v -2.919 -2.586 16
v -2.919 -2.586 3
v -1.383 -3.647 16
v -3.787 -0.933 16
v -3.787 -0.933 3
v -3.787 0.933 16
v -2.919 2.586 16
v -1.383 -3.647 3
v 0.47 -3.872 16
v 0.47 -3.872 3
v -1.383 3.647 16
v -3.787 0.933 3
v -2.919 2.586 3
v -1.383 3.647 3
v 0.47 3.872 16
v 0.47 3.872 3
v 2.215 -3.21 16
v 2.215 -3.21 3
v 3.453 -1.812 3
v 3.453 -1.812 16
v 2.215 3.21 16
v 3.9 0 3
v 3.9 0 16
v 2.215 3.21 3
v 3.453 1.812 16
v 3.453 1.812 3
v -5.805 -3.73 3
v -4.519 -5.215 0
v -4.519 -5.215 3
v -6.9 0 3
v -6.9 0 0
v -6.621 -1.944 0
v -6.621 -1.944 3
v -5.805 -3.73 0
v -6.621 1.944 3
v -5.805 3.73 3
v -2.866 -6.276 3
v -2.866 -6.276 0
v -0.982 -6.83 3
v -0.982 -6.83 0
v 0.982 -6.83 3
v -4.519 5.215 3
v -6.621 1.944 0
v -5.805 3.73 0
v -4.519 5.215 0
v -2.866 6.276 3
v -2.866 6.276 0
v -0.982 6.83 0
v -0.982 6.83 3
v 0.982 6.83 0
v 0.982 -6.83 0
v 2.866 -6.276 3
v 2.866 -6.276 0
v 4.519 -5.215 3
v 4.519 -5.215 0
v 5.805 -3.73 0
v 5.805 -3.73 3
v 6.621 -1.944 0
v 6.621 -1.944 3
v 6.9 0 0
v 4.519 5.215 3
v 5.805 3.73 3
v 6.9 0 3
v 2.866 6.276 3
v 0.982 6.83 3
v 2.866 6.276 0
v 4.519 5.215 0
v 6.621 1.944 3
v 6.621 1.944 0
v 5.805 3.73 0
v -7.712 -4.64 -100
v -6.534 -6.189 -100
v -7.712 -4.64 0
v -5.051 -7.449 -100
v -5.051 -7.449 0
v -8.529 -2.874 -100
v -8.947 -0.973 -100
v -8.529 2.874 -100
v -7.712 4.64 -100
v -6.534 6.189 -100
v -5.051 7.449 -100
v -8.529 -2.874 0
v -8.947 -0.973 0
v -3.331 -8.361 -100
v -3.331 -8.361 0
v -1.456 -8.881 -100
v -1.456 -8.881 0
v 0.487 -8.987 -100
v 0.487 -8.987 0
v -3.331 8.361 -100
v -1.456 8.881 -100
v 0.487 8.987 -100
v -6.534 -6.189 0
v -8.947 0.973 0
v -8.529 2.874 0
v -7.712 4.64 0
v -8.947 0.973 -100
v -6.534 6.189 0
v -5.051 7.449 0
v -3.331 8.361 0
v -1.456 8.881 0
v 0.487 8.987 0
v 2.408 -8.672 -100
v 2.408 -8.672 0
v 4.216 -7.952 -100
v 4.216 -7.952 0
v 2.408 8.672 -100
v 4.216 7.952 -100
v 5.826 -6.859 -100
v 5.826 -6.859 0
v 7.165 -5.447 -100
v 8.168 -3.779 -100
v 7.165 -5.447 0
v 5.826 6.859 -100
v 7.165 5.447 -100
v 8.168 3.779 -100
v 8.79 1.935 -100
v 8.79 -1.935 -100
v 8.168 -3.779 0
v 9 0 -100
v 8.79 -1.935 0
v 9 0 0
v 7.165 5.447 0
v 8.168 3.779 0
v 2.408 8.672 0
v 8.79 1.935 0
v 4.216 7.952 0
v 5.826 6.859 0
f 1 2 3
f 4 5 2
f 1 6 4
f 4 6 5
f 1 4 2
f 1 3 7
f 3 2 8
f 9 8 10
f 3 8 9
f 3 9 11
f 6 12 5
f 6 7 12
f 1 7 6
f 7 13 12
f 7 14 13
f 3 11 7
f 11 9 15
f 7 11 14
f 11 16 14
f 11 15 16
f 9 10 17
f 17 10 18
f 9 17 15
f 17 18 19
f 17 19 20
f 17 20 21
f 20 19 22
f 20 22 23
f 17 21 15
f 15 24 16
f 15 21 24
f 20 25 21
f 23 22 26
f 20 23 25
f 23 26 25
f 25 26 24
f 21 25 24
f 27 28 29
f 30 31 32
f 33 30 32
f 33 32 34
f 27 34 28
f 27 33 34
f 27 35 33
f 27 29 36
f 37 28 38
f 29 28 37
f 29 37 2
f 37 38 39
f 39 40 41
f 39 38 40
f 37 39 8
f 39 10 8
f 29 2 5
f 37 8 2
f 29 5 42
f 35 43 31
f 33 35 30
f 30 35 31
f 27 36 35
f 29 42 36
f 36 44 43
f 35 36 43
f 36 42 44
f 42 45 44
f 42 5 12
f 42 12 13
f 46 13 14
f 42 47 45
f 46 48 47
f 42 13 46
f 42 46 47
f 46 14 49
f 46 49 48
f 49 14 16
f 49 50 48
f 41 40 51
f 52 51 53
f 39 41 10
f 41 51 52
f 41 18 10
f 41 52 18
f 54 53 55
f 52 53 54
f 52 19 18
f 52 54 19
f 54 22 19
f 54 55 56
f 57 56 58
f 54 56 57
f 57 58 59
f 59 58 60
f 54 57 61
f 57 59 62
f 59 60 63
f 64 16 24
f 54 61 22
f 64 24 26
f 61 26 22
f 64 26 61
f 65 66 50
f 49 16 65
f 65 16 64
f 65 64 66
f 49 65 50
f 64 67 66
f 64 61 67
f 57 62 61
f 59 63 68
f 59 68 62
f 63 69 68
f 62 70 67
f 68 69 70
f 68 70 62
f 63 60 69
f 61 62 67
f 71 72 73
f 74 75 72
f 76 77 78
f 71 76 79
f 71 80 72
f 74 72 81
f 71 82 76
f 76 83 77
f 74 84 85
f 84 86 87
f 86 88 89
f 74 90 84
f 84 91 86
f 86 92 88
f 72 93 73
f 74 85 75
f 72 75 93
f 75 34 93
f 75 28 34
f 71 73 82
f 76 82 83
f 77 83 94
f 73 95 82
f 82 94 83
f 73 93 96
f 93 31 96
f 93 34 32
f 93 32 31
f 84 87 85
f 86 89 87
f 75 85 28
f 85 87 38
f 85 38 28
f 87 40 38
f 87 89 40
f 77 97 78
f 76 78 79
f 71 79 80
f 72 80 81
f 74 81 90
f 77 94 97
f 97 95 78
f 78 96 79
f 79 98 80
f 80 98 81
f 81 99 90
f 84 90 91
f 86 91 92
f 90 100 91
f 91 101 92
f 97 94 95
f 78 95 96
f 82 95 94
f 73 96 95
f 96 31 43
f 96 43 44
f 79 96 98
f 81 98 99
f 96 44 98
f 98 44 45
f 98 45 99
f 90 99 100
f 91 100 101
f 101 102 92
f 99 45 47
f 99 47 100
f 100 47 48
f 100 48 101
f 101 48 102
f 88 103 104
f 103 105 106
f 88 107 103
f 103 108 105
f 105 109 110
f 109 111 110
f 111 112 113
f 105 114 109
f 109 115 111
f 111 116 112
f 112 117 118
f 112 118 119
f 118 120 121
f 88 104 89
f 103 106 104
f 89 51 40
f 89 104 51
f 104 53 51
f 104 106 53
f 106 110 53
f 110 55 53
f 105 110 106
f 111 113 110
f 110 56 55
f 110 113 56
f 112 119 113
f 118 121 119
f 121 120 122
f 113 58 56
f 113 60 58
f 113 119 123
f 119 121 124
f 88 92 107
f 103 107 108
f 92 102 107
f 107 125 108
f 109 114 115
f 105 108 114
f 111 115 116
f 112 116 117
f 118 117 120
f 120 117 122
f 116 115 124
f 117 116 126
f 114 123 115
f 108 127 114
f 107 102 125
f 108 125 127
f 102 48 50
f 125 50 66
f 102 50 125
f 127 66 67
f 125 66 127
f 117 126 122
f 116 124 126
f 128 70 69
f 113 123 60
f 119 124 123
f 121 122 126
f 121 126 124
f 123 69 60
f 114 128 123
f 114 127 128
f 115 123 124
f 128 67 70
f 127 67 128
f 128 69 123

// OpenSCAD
union() {
    translate([0,0,9.5])
        cylinder(r=3.9,h=13,center=true);
    translate([0,0,1.5])
    cylinder(r=6.9, h=3, center=true);
    translate([0,0,-50])
        cylinder(r=9,h=100, center=true);
}
